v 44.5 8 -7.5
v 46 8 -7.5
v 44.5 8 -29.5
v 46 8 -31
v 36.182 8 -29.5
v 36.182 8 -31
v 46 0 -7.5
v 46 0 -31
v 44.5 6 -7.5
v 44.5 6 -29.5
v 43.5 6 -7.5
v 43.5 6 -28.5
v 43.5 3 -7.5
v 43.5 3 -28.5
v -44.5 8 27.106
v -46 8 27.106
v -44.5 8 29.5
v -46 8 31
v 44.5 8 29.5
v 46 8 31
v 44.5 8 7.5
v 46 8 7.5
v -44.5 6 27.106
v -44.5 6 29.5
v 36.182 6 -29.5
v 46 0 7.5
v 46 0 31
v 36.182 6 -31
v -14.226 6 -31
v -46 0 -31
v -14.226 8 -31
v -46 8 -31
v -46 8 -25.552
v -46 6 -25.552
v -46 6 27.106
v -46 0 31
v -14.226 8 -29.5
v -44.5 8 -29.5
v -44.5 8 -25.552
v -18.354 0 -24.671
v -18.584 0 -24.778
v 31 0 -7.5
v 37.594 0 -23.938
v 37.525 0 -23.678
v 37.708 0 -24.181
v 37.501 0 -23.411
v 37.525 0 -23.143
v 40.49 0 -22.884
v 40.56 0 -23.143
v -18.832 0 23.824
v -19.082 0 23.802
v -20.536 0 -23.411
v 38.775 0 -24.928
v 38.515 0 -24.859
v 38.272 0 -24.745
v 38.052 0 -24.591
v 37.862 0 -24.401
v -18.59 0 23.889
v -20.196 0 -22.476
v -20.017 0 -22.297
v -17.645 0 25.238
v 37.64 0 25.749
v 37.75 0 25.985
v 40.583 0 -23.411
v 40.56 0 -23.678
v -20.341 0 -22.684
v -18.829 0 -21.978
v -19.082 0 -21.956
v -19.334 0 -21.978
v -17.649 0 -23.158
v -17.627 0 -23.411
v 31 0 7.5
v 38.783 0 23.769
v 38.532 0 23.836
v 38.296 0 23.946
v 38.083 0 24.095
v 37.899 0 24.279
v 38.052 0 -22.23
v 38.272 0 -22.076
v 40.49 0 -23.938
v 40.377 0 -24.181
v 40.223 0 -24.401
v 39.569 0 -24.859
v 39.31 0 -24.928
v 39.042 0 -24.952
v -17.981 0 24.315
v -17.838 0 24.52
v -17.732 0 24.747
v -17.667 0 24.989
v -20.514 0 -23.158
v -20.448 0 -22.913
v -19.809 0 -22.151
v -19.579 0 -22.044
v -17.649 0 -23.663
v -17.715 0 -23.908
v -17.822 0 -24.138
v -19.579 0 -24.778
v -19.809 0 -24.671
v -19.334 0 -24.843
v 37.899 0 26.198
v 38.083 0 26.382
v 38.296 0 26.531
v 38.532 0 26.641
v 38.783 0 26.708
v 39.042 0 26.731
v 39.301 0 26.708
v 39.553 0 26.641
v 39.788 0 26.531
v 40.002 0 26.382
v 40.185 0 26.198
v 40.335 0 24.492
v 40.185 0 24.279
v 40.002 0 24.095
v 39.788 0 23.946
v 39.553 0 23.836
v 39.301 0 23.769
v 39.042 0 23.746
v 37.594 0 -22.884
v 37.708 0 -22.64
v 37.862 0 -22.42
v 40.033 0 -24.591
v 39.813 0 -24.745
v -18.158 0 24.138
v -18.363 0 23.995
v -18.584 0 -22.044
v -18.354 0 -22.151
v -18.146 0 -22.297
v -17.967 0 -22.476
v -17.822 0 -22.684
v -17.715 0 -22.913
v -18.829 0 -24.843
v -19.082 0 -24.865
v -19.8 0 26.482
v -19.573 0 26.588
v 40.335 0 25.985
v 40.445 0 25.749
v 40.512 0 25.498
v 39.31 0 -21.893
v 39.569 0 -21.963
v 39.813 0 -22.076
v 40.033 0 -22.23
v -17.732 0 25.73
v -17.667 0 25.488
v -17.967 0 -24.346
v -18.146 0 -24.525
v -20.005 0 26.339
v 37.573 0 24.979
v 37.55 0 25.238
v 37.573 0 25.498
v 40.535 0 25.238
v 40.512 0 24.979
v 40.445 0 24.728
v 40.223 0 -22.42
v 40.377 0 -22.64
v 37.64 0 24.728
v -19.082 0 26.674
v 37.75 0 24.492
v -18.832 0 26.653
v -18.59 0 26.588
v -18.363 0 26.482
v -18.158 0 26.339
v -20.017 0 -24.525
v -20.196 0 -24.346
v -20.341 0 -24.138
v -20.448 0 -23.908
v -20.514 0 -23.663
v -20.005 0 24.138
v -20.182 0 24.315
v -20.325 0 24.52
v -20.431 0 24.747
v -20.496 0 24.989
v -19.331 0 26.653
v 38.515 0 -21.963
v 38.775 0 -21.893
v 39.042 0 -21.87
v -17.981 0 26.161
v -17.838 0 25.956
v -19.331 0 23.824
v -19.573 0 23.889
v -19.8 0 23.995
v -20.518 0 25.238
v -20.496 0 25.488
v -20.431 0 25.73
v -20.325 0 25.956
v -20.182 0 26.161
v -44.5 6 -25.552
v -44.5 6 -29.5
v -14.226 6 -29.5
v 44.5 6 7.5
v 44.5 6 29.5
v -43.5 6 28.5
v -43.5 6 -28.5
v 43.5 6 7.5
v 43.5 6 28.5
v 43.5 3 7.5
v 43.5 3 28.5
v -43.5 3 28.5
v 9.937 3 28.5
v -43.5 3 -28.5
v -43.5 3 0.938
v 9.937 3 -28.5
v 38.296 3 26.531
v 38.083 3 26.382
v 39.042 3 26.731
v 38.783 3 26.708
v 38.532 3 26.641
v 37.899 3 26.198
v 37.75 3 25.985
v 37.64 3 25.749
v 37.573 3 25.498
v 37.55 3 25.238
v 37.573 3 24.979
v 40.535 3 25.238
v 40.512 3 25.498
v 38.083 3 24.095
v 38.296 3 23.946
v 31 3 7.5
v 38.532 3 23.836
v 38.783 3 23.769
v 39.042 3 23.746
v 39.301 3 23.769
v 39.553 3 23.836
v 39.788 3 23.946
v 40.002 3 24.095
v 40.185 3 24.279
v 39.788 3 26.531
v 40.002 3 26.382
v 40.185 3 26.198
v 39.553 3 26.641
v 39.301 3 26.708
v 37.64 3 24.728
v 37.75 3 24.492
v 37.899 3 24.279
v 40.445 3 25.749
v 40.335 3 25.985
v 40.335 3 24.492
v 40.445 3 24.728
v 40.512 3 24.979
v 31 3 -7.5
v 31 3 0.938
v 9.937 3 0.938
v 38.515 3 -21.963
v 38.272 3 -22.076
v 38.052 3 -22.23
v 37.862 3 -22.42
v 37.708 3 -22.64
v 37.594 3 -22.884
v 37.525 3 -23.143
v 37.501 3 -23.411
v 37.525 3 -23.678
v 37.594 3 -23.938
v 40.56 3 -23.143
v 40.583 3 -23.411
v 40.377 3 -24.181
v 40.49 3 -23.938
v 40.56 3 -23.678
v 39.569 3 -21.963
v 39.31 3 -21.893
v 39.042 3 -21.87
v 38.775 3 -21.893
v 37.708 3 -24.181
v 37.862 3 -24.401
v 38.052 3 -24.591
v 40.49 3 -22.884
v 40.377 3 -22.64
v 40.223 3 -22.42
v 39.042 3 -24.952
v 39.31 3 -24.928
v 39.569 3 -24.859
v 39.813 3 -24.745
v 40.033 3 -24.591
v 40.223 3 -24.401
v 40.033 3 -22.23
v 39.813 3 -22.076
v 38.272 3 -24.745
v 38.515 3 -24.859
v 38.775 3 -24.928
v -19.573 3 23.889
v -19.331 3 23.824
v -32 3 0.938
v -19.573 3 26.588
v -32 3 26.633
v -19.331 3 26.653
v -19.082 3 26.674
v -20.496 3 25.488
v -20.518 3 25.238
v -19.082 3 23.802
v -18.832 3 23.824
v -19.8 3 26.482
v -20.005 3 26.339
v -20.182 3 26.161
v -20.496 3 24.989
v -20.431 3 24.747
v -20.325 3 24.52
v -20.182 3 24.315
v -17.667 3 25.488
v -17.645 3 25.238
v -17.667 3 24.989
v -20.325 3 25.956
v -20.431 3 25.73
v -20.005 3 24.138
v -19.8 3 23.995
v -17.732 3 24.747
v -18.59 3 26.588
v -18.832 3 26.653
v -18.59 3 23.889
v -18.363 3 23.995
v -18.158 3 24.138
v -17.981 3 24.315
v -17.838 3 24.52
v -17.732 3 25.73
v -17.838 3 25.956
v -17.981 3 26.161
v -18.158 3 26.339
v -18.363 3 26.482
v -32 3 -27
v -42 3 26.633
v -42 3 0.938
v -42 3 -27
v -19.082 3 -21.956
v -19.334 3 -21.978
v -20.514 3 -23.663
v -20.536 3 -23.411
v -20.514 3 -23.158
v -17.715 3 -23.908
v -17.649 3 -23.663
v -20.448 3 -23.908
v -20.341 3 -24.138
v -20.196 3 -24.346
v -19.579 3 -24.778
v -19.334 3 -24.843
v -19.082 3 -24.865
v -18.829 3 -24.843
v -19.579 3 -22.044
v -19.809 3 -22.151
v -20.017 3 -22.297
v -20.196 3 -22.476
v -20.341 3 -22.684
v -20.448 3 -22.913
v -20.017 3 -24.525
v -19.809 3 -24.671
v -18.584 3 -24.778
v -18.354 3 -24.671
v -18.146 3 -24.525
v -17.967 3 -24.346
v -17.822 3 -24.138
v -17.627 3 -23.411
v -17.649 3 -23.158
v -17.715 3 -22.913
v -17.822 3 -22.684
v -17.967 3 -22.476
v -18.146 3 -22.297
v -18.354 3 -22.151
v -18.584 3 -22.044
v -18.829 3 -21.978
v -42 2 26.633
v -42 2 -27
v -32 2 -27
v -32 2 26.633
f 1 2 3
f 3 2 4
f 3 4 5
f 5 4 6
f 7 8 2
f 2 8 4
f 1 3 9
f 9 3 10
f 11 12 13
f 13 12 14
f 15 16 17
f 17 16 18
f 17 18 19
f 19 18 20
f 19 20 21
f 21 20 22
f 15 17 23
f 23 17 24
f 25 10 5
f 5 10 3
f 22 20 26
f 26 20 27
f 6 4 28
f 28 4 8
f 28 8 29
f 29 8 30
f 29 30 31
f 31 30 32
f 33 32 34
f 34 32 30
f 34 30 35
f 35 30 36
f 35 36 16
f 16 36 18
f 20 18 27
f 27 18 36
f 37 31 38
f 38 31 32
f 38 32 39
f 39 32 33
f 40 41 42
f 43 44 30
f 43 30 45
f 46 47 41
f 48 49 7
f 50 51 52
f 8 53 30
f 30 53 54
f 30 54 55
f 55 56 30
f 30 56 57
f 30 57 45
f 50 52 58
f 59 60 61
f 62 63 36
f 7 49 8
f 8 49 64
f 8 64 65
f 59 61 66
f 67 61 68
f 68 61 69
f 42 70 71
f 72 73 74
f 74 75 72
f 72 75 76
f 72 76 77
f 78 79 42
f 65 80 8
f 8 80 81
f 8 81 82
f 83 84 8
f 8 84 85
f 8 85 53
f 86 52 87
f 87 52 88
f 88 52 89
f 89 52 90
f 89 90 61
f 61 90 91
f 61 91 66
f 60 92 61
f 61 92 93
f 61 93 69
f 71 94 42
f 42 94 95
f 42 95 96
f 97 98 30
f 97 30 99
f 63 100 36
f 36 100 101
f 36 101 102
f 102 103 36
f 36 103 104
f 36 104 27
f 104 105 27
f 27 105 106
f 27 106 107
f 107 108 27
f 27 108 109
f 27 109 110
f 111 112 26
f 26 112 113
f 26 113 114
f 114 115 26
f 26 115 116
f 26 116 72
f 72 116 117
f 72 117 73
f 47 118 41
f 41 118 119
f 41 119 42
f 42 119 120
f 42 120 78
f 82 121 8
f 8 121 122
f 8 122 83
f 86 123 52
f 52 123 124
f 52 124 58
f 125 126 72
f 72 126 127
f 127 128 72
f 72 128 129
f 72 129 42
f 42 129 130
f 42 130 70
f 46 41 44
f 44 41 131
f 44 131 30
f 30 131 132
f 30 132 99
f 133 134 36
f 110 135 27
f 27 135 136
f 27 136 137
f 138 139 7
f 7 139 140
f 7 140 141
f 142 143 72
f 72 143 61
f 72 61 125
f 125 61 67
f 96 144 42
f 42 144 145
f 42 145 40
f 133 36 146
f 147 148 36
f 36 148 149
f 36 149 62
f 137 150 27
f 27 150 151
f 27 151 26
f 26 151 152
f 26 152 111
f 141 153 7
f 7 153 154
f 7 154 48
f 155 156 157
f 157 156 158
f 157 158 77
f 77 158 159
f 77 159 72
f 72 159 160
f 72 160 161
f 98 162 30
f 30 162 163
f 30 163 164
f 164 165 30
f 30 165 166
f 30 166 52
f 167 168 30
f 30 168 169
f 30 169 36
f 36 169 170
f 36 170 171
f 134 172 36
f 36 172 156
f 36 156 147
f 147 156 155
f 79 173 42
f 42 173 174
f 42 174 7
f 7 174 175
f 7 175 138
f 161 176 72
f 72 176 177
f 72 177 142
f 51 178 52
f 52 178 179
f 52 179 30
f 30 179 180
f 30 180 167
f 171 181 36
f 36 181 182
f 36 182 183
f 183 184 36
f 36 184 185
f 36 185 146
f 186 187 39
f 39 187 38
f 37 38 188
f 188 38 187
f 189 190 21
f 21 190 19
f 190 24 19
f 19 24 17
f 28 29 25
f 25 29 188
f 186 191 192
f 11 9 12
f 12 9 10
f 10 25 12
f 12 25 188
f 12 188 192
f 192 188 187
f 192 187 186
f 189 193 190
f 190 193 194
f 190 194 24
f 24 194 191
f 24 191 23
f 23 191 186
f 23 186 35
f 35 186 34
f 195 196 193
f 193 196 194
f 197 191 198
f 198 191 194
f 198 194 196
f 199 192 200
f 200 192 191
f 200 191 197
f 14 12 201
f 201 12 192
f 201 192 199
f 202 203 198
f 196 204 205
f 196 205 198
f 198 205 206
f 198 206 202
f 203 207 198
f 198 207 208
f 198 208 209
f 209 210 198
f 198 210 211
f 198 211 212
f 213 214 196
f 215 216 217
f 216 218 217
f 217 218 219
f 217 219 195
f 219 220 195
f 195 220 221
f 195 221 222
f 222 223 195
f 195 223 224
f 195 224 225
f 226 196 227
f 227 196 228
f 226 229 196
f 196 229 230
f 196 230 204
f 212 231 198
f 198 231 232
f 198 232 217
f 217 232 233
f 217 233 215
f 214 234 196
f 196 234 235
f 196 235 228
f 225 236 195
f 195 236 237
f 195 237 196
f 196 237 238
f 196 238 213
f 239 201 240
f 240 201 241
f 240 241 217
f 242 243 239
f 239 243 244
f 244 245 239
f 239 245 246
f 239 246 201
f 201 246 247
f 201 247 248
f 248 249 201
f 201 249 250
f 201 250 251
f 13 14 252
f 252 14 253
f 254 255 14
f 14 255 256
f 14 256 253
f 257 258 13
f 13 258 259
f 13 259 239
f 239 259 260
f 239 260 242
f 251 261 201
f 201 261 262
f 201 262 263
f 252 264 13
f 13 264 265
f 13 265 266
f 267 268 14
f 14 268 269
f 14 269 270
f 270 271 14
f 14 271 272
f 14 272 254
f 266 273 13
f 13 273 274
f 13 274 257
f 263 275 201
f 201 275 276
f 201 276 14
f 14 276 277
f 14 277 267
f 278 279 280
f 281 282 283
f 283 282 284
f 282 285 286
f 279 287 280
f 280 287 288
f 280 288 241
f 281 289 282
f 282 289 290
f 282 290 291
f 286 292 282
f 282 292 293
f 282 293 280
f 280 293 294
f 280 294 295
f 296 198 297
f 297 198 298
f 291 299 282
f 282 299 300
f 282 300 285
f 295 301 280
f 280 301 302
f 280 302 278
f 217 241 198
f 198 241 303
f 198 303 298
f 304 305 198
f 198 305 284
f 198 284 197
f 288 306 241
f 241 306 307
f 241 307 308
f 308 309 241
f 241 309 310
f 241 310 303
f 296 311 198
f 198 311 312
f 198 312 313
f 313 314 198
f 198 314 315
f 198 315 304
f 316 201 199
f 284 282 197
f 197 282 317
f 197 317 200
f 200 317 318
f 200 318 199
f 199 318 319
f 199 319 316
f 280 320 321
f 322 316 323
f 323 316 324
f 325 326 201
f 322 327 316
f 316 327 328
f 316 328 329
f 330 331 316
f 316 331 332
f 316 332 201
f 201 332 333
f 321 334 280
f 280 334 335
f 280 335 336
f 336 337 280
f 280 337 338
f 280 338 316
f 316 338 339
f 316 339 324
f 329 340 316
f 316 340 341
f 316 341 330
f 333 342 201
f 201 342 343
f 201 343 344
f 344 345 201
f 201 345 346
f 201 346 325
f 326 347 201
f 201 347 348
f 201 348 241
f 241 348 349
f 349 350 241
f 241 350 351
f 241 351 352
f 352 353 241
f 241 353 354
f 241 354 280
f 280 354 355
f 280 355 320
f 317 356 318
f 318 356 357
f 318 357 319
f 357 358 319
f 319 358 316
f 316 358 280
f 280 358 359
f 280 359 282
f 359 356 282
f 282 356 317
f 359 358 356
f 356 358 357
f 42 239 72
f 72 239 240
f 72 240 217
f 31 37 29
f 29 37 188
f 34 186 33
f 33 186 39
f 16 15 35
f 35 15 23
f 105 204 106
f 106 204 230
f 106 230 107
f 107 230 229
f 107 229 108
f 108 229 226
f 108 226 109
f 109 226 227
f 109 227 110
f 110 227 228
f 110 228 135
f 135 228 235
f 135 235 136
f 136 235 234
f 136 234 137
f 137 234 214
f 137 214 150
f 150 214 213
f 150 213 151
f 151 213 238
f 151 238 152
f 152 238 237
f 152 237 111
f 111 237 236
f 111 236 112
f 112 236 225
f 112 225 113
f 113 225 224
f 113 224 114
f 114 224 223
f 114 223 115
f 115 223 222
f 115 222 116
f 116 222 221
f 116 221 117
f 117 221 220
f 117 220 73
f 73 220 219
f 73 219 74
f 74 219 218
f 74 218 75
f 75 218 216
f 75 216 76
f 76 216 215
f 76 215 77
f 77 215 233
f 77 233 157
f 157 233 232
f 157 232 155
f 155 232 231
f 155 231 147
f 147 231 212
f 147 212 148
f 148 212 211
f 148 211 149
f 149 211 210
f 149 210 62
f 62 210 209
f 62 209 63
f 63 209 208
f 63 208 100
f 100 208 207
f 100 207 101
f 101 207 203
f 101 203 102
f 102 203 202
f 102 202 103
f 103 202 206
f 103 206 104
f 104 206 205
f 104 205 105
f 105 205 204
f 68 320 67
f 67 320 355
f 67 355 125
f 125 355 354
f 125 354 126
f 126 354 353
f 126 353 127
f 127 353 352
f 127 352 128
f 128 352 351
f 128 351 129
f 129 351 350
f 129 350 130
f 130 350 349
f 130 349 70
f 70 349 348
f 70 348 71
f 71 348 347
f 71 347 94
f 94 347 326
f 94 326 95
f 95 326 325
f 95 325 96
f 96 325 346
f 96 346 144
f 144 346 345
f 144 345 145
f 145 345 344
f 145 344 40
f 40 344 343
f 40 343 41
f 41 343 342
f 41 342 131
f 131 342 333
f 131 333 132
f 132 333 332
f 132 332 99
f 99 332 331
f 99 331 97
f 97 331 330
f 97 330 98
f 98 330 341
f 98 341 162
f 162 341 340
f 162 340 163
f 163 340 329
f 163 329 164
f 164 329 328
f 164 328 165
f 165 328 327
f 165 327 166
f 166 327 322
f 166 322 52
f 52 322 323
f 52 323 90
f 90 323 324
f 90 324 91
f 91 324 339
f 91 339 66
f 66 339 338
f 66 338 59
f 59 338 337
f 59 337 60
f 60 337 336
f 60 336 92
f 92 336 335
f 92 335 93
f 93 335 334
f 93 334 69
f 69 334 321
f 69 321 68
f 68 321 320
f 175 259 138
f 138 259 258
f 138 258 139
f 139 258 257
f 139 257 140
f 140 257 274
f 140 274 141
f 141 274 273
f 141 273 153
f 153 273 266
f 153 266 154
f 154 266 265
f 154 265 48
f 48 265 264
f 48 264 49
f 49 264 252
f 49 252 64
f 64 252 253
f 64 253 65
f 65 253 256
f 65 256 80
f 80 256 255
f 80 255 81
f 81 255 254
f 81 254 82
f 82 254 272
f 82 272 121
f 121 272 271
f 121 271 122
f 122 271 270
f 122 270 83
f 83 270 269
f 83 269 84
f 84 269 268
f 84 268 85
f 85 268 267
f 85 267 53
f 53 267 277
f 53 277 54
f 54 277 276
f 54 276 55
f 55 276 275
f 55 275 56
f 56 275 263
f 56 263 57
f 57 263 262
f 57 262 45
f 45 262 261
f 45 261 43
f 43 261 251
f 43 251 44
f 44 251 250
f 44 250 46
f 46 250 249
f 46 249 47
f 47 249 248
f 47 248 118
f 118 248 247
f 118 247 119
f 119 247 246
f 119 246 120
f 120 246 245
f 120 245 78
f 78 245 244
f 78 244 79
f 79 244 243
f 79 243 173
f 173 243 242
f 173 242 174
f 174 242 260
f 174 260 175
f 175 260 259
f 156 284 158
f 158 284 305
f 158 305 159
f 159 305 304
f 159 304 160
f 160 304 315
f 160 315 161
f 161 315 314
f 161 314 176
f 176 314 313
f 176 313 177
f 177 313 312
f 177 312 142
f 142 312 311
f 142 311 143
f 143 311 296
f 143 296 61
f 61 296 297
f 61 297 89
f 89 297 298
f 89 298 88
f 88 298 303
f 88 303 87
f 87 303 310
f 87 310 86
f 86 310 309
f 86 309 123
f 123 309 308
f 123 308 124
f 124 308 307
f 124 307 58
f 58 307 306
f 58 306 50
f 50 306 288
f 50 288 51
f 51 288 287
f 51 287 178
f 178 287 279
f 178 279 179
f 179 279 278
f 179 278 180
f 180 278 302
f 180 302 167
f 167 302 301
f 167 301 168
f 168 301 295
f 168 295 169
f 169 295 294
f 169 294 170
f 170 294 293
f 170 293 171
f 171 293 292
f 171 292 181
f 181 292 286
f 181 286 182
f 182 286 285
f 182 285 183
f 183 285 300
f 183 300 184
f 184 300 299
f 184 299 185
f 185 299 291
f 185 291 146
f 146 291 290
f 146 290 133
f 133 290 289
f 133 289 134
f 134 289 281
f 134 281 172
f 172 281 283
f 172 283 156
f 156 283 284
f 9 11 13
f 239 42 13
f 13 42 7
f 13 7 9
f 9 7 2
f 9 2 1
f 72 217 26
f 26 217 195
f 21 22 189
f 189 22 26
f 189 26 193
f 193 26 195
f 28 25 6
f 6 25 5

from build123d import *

# Parameters (mm, degrees)
CROQUIS2_W              = 92
CROQUIS2_H              = 62
SALIENTE_EXTRUIR1_DEPTH = 8
CROQUIS3_W              = 89
CROQUIS3_H              = 59
CORTAR_EXTRUIR1_DEPTH   = 2
CROQUIS4_W              = 87
CROQUIS4_H              = 57
CORTAR_EXTRUIR2_DEPTH   = 3
CROQUIS5_W              = 10
CROQUIS5_H              = 53.632525493
CORTAR_EXTRUIR3_DEPTH   = 1
CORTAR_EXTRUIR4_REACH   = 57.696
CROQUIS6_W              = 15
CROQUIS6_H              = 10
CROQUIS7_R              = 5
CORTAR_EXTRUIR5_DEPTH   = 56.794264938
REDONDEO1_R             = 5
CROQUIS9_W              = 2.5
CROQUIS9_H              = 17.009234147
CROQUIS9_H_2            = 13.999979608
CROQUIS9_H_3            = 14.150072655
CROQUIS9_W_2            = 9.965409089
CROQUIS9_H_4            = 2.5
CROQUIS9_W_3            = 7.294458122
CROQUIS9_W_4            = 7.420347284
CROQUIS9_W_5            = 5
CORTAR_EXTRUIR7_DEPTH   = 2
CROQUIS10_R             = 1.492354092
CROQUIS10_R_2           = 1.54105633
CROQUIS10_R_3           = 1.454647155
CROQUIS10_R_4           = 1.436117112
CORTAR_EXTRUIR8_DEPTH   = 56.695601345
CORTAR_EXTRUIR9_REACH   = 99.411
CROQUIS11_W             = 15
CROQUIS11_H             = 8
CROQUIS12_W             = 50.407466657
CROQUIS12_H             = 2
CORTAR_EXTRUIR10_DEPTH  = 2.5
CROQUIS13_W             = 52.657281968
CROQUIS13_H             = 2
CORTAR_EXTRUIR11_DEPTH  = 2.5


with BuildPart() as part:
    # Croquis2 → Saliente-Extruir1 (new body)
    with BuildSketch(Plane(origin=(0, 0, 0), x_dir=(1, 0, 0), z_dir=(0, 1, 0))):
        Rectangle(CROQUIS2_W, CROQUIS2_H)
    extrude(amount=SALIENTE_EXTRUIR1_DEPTH)

    # Croquis3 → Cortar-Extruir1 (cut)
    with BuildSketch(Plane(origin=(0, 8, 0), x_dir=(1, 0, 0), z_dir=(0, 1, 0))):
        Rectangle(CROQUIS3_W, CROQUIS3_H)
    extrude(amount=-CORTAR_EXTRUIR1_DEPTH, mode=Mode.SUBTRACT)

    # Croquis4 → Cortar-Extruir2 (cut)
    with BuildSketch(Plane(origin=(0, 6, 0), x_dir=(1, 0, 0), z_dir=(0, 1, 0))):
        Rectangle(CROQUIS4_W, CROQUIS4_H)
    extrude(amount=-CORTAR_EXTRUIR2_DEPTH, mode=Mode.SUBTRACT)

    # Croquis5 → Cortar-Extruir3 (cut)
    with BuildSketch(Plane(origin=(0, 3, 0), x_dir=(1, 0, 0), z_dir=(0, 1, 0))):
        with Locations((-37, 0.183737253)):
            Rectangle(CROQUIS5_W, CROQUIS5_H)
    extrude(amount=-CORTAR_EXTRUIR3_DEPTH, mode=Mode.SUBTRACT)

    # Cortar-Extruir4: up to this face of the body (flat: up to its plane)
    cortar_extruir4_end = Plane(part.part.faces().sort_by_distance((-37, 2, -0.183737254))[0])
    # Croquis6 → Cortar-Extruir4 (cut, up to the picked face)
    with BuildSketch(Plane(origin=(0, 5, 0), x_dir=(1, 0, 0), z_dir=(0, 1, 0)), mode=Mode.PRIVATE) as cortar_extruir4_sk1:
        with Locations((38.5, 0)):
            Rectangle(CROQUIS6_W, CROQUIS6_H)
    cortar_extruir4_tool1 = split(extrude(cortar_extruir4_sk1.sketch, amount=-CORTAR_EXTRUIR4_REACH, mode=Mode.PRIVATE), bisect_by=cortar_extruir4_end, keep=Keep.BOTH, mode=Mode.PRIVATE)
    add(cortar_extruir4_tool1.solids().sort_by(Axis((38.5, 5, 0), (0, -1, 0)))[0], mode=Mode.SUBTRACT)

    # Croquis7 → Cortar-Extruir5 (cut, through all)
    with BuildSketch(Plane(origin=(0, 2, 0), x_dir=(1, 0, 0), z_dir=(0, 1, 0))):
        with Locations((46, 0)):
            Circle(CROQUIS7_R)
    extrude(amount=-CORTAR_EXTRUIR5_DEPTH, mode=Mode.SUBTRACT)

    # Redondeo1
    # the kernel refuses this fillet: 5 mm, written as the material it takes off along each edge
    with BuildSketch(Plane(origin=(46, 2, 0), x_dir=(0.9999950652018581, 0, -0.00314158748587981), z_dir=(0.00314158748587981, 0, 0.9999950652018581))) as redondeo1_piece_1_section:
        with BuildLine():
            CenterArc((9, -5), REDONDEO1_R, 90, 53.130102354)
            Line((9, 0), (5, 0))
            Line((5, 0), (5, -2))
        make_face()
    redondeo1_piece_1 = revolve(axis=Axis((46, 2, 0), (0, 1, 0)), revolution_arc=359.64, mode=Mode.PRIVATE)
    redondeo1_piece_1 = split(redondeo1_piece_1, bisect_by=Plane(origin=(39.240540113, 1.481080227, 5), z_dir=(0, 0, -1)), keep=Keep.TOP, mode=Mode.PRIVATE)
    redondeo1_piece_1 = split(redondeo1_piece_1, bisect_by=Plane(origin=(39.240540113, 1.481080227, -5), z_dir=(0, 0, 1)), keep=Keep.TOP, mode=Mode.PRIVATE)
    add(redondeo1_piece_1, mode=Mode.SUBTRACT)

    # Croquis9 → Cortar-Extruir7 (cut)
    with BuildSketch(Plane(origin=(0, 8, 0), x_dir=(1, 0, 0), z_dir=(0, 1, 0))):
        with Locations((-44.75, -18.601084438)):
            Rectangle(CROQUIS9_W, CROQUIS9_H)
        with Locations((-44.75, 0.477589339)):
            Rectangle(CROQUIS9_W, CROQUIS9_H_2)
        with Locations((-44.75, 18.476544129)):
            Rectangle(CROQUIS9_W, CROQUIS9_H_3)
        with Locations((31.175863948, 29.75)):
            Rectangle(CROQUIS9_W_2, CROQUIS9_H_4)
        with Locations((16.194930406, 29.75)):
            Rectangle(CROQUIS9_W_3, CROQUIS9_H_4)
        with Locations((2.577919336, 29.75)):
            Rectangle(CROQUIS9_W_4, CROQUIS9_H_4)
        with Locations((-11.725767222, 29.75)):
            Rectangle(CROQUIS9_W_5, CROQUIS9_H_4)
    extrude(amount=-CORTAR_EXTRUIR7_DEPTH, mode=Mode.SUBTRACT)

    # Croquis10 → Cortar-Extruir8 (cut, through all)
    with BuildSketch(Plane(origin=(0, 3, 0), x_dir=(1, 0, 0), z_dir=(0, 1, 0))):
        with Locations(Location((39.042237476, -25.238379945, 0), (0, 0, 270))):
            Circle(CROQUIS10_R)
        with Locations(Location((39.042237476, 23.410831917, 0), (0, 0, 270))):
            Circle(CROQUIS10_R_2)
        with Locations(Location((-19.081524932, 23.410831917, 0), (0, 0, 270))):
            Circle(CROQUIS10_R_3)
        with Locations(Location((-19.081524932, -25.238379945, 0), (0, 0, 270))):
            Circle(CROQUIS10_R_4)
    extrude(amount=-CORTAR_EXTRUIR8_DEPTH, mode=Mode.SUBTRACT)

    # Cortar-Extruir9: up to this face of the body (flat: up to its plane)
    cortar_extruir9_end = Plane(part.part.faces().sort_by_distance((31, 2.5, 0))[0])
    # Croquis11 → Cortar-Extruir9 (cut, up to the picked face)
    with BuildSketch(Plane(origin=(46, 0, 0), x_dir=(0, 0, -1), z_dir=(1, 0, 0)), mode=Mode.PRIVATE) as cortar_extruir9_sk1:
        with Locations((0, 4)):
            Rectangle(CROQUIS11_W, CROQUIS11_H)
    cortar_extruir9_tool1 = split(extrude(cortar_extruir9_sk1.sketch, amount=-CORTAR_EXTRUIR9_REACH, mode=Mode.PRIVATE), bisect_by=cortar_extruir9_end, keep=Keep.BOTH, mode=Mode.PRIVATE)
    add(cortar_extruir9_tool1.solids().sort_by(Axis((46, 4, 0), (-1, 0, 0)))[0], mode=Mode.SUBTRACT)

    # Croquis12 → Cortar-Extruir10 (cut)
    with BuildSketch(Plane(origin=(0, 0, -31), x_dir=(-1, 0, 0), z_dir=(0, 0, -1))):
        with Locations((-10.977966106, 7)):
            Rectangle(CROQUIS12_W, CROQUIS12_H)
    extrude(amount=-CORTAR_EXTRUIR10_DEPTH, mode=Mode.SUBTRACT)

    # Croquis13 → Cortar-Extruir11 (cut)
    with BuildSketch(Plane.ZY.offset(46)):
        with Locations((0.777060527, 7)):
            Rectangle(CROQUIS13_W, CROQUIS13_H)
    extrude(amount=-CORTAR_EXTRUIR11_DEPTH, mode=Mode.SUBTRACT)


solid = part.part
